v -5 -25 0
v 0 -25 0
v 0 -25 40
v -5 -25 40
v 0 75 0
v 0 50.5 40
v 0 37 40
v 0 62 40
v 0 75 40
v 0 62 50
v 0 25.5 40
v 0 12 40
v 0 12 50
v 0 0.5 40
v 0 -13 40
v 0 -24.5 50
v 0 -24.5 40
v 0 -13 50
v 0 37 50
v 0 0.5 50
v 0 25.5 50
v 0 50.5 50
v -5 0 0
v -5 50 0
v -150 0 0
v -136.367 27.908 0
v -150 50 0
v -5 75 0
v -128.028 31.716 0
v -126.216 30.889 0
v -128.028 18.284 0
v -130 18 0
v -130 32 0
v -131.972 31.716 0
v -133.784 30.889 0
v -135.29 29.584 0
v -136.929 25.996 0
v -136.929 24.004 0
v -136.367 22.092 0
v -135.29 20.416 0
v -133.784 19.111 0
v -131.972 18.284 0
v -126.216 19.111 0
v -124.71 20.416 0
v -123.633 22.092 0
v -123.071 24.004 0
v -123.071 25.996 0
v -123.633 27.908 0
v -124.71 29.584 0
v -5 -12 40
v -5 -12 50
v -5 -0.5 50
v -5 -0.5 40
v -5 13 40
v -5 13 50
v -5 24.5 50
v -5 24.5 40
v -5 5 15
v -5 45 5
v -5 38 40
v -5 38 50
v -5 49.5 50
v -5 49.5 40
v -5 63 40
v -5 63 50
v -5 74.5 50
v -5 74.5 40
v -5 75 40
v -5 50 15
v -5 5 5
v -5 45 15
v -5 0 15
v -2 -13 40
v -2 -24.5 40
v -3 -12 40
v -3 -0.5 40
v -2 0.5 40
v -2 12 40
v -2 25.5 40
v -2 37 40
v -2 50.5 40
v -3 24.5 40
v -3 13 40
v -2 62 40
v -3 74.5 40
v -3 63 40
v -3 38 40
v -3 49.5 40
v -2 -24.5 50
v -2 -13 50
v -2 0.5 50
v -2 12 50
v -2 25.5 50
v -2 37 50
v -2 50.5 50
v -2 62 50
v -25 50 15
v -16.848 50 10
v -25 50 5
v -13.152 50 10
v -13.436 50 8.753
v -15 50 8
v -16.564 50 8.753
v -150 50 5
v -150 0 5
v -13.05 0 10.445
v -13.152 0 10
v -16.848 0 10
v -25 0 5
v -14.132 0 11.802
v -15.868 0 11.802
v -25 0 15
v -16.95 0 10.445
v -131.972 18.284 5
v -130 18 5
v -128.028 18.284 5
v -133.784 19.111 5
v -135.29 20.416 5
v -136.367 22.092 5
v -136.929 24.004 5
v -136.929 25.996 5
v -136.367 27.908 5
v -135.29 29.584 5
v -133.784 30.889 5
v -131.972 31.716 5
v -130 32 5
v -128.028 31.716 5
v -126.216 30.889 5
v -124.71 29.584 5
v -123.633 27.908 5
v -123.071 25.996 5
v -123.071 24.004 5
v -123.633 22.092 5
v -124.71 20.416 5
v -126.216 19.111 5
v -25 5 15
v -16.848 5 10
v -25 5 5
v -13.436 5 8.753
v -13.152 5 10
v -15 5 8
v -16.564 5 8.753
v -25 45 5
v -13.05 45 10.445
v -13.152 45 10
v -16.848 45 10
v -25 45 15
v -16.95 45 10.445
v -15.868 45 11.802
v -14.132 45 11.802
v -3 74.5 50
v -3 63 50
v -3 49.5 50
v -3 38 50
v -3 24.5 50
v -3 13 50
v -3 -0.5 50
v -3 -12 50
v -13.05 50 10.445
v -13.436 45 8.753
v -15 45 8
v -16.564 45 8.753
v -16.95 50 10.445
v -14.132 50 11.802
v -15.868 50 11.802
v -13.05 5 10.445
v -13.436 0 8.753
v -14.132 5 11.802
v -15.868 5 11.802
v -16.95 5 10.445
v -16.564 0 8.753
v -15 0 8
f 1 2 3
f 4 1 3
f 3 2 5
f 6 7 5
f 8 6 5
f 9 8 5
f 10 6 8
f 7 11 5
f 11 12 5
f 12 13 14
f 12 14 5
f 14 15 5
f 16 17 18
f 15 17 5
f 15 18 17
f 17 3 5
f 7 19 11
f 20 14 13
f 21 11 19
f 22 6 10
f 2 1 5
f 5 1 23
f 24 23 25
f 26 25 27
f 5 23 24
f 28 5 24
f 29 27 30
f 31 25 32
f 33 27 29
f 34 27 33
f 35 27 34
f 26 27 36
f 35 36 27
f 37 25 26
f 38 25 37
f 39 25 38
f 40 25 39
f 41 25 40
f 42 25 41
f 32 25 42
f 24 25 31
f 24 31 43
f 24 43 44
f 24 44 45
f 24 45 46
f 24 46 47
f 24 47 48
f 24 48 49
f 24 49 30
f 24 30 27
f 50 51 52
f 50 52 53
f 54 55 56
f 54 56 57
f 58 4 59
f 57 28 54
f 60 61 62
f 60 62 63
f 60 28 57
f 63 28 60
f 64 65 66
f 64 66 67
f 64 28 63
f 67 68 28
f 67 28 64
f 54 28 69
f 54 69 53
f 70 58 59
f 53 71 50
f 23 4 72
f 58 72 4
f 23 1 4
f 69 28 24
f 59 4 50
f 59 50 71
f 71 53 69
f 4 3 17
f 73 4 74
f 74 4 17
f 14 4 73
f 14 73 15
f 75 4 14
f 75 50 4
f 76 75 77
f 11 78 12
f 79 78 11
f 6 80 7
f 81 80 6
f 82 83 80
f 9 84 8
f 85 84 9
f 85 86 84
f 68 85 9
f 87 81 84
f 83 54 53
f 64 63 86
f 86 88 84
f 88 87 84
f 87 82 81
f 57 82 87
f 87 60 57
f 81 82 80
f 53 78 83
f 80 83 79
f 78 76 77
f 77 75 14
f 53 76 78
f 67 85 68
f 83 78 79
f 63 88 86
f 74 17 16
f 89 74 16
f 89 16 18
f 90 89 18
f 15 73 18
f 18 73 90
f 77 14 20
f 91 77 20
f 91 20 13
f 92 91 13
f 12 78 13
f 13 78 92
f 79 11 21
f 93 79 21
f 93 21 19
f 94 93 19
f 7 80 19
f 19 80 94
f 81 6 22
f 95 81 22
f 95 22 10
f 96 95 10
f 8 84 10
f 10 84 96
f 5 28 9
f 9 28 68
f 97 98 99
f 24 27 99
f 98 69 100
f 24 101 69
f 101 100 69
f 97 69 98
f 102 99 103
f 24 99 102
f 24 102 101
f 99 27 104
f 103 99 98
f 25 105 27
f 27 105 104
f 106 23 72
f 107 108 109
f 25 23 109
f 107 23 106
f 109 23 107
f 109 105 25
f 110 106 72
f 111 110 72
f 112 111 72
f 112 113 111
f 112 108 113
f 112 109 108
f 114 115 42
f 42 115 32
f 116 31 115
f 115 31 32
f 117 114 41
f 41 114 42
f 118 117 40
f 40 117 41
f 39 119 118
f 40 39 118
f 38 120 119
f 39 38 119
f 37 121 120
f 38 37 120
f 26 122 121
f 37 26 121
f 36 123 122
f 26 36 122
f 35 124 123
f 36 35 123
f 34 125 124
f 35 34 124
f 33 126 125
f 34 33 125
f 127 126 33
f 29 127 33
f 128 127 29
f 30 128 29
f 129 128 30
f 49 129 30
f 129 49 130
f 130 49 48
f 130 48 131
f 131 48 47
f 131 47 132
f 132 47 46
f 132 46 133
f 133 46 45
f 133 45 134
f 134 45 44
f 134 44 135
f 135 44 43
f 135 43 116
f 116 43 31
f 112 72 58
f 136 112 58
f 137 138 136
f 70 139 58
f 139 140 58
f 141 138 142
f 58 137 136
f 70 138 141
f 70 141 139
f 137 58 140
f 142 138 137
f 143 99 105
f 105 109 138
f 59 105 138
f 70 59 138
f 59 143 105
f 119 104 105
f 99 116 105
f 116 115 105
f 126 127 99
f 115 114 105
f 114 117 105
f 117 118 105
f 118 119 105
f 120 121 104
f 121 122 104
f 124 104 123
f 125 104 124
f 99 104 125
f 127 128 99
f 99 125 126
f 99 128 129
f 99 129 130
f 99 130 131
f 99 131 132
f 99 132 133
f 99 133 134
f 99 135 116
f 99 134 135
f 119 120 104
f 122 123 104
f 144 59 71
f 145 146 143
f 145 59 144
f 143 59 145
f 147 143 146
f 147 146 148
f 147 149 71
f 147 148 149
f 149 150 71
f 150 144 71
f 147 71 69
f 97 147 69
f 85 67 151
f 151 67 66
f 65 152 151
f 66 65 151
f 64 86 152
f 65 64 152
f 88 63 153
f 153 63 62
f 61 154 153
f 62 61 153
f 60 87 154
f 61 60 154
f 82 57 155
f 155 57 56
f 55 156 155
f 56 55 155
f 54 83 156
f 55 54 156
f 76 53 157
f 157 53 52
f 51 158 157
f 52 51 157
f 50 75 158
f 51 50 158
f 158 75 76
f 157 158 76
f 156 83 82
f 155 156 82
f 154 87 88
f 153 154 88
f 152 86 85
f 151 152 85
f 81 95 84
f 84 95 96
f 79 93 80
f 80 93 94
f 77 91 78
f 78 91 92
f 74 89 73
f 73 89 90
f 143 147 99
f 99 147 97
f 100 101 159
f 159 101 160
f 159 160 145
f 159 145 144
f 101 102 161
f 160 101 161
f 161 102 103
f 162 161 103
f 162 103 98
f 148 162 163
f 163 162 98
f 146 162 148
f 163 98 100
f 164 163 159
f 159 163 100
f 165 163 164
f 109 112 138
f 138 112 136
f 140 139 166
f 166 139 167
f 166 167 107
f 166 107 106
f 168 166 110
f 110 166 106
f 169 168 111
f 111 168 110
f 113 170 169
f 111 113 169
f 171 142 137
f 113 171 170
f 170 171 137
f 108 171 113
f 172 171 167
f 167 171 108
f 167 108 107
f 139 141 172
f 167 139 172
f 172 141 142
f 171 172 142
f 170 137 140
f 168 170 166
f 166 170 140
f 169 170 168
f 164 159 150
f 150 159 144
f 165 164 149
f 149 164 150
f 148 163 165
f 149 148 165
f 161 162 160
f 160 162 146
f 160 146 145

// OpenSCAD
thickness = 5;
foot_width = 100;
foot_length = 40;
connector_offset = 0.5;
connector_length = 10;

rotate(90) {
difference() {
	cube([50, 150, thickness]);
	translate([25,130,0]) {cylinder(thickness, r=7);}
}

translate([-25,0,0]) {
	cube([foot_width, thickness, foot_length]);

	for ( i = [0 : 3] ) {
		translate([i*25,0,foot_length]) {
			translate([connector_offset,0,0]) {cube([foot_width / 8 - (2 * connector_offset),thickness/2 - connector_offset,connector_length]);}
			translate([foot_width / 8 + connector_offset,thickness/2+connector_offset,0]) {cube([foot_width / 8 - (2 * connector_offset),thickness/2 - connector_offset,connector_length]);}
		}
	}
}

difference() {
	translate([45,5,5]) {cube([5,20,10]);}
	for (i = [[45,15,10]]) {
		translate(i) {
			rotate([0,90]) {
				cylinder(thickness, r=2);
			}
		}
	}
}

difference() {
	translate([0,5,5]) {cube([5,20,10]);}
	for (i = [[0,15,10]]) {
		translate(i) {
			rotate([0,90]) {
				cylinder(thickness, r=2);
			}
		}
	}
}

}
